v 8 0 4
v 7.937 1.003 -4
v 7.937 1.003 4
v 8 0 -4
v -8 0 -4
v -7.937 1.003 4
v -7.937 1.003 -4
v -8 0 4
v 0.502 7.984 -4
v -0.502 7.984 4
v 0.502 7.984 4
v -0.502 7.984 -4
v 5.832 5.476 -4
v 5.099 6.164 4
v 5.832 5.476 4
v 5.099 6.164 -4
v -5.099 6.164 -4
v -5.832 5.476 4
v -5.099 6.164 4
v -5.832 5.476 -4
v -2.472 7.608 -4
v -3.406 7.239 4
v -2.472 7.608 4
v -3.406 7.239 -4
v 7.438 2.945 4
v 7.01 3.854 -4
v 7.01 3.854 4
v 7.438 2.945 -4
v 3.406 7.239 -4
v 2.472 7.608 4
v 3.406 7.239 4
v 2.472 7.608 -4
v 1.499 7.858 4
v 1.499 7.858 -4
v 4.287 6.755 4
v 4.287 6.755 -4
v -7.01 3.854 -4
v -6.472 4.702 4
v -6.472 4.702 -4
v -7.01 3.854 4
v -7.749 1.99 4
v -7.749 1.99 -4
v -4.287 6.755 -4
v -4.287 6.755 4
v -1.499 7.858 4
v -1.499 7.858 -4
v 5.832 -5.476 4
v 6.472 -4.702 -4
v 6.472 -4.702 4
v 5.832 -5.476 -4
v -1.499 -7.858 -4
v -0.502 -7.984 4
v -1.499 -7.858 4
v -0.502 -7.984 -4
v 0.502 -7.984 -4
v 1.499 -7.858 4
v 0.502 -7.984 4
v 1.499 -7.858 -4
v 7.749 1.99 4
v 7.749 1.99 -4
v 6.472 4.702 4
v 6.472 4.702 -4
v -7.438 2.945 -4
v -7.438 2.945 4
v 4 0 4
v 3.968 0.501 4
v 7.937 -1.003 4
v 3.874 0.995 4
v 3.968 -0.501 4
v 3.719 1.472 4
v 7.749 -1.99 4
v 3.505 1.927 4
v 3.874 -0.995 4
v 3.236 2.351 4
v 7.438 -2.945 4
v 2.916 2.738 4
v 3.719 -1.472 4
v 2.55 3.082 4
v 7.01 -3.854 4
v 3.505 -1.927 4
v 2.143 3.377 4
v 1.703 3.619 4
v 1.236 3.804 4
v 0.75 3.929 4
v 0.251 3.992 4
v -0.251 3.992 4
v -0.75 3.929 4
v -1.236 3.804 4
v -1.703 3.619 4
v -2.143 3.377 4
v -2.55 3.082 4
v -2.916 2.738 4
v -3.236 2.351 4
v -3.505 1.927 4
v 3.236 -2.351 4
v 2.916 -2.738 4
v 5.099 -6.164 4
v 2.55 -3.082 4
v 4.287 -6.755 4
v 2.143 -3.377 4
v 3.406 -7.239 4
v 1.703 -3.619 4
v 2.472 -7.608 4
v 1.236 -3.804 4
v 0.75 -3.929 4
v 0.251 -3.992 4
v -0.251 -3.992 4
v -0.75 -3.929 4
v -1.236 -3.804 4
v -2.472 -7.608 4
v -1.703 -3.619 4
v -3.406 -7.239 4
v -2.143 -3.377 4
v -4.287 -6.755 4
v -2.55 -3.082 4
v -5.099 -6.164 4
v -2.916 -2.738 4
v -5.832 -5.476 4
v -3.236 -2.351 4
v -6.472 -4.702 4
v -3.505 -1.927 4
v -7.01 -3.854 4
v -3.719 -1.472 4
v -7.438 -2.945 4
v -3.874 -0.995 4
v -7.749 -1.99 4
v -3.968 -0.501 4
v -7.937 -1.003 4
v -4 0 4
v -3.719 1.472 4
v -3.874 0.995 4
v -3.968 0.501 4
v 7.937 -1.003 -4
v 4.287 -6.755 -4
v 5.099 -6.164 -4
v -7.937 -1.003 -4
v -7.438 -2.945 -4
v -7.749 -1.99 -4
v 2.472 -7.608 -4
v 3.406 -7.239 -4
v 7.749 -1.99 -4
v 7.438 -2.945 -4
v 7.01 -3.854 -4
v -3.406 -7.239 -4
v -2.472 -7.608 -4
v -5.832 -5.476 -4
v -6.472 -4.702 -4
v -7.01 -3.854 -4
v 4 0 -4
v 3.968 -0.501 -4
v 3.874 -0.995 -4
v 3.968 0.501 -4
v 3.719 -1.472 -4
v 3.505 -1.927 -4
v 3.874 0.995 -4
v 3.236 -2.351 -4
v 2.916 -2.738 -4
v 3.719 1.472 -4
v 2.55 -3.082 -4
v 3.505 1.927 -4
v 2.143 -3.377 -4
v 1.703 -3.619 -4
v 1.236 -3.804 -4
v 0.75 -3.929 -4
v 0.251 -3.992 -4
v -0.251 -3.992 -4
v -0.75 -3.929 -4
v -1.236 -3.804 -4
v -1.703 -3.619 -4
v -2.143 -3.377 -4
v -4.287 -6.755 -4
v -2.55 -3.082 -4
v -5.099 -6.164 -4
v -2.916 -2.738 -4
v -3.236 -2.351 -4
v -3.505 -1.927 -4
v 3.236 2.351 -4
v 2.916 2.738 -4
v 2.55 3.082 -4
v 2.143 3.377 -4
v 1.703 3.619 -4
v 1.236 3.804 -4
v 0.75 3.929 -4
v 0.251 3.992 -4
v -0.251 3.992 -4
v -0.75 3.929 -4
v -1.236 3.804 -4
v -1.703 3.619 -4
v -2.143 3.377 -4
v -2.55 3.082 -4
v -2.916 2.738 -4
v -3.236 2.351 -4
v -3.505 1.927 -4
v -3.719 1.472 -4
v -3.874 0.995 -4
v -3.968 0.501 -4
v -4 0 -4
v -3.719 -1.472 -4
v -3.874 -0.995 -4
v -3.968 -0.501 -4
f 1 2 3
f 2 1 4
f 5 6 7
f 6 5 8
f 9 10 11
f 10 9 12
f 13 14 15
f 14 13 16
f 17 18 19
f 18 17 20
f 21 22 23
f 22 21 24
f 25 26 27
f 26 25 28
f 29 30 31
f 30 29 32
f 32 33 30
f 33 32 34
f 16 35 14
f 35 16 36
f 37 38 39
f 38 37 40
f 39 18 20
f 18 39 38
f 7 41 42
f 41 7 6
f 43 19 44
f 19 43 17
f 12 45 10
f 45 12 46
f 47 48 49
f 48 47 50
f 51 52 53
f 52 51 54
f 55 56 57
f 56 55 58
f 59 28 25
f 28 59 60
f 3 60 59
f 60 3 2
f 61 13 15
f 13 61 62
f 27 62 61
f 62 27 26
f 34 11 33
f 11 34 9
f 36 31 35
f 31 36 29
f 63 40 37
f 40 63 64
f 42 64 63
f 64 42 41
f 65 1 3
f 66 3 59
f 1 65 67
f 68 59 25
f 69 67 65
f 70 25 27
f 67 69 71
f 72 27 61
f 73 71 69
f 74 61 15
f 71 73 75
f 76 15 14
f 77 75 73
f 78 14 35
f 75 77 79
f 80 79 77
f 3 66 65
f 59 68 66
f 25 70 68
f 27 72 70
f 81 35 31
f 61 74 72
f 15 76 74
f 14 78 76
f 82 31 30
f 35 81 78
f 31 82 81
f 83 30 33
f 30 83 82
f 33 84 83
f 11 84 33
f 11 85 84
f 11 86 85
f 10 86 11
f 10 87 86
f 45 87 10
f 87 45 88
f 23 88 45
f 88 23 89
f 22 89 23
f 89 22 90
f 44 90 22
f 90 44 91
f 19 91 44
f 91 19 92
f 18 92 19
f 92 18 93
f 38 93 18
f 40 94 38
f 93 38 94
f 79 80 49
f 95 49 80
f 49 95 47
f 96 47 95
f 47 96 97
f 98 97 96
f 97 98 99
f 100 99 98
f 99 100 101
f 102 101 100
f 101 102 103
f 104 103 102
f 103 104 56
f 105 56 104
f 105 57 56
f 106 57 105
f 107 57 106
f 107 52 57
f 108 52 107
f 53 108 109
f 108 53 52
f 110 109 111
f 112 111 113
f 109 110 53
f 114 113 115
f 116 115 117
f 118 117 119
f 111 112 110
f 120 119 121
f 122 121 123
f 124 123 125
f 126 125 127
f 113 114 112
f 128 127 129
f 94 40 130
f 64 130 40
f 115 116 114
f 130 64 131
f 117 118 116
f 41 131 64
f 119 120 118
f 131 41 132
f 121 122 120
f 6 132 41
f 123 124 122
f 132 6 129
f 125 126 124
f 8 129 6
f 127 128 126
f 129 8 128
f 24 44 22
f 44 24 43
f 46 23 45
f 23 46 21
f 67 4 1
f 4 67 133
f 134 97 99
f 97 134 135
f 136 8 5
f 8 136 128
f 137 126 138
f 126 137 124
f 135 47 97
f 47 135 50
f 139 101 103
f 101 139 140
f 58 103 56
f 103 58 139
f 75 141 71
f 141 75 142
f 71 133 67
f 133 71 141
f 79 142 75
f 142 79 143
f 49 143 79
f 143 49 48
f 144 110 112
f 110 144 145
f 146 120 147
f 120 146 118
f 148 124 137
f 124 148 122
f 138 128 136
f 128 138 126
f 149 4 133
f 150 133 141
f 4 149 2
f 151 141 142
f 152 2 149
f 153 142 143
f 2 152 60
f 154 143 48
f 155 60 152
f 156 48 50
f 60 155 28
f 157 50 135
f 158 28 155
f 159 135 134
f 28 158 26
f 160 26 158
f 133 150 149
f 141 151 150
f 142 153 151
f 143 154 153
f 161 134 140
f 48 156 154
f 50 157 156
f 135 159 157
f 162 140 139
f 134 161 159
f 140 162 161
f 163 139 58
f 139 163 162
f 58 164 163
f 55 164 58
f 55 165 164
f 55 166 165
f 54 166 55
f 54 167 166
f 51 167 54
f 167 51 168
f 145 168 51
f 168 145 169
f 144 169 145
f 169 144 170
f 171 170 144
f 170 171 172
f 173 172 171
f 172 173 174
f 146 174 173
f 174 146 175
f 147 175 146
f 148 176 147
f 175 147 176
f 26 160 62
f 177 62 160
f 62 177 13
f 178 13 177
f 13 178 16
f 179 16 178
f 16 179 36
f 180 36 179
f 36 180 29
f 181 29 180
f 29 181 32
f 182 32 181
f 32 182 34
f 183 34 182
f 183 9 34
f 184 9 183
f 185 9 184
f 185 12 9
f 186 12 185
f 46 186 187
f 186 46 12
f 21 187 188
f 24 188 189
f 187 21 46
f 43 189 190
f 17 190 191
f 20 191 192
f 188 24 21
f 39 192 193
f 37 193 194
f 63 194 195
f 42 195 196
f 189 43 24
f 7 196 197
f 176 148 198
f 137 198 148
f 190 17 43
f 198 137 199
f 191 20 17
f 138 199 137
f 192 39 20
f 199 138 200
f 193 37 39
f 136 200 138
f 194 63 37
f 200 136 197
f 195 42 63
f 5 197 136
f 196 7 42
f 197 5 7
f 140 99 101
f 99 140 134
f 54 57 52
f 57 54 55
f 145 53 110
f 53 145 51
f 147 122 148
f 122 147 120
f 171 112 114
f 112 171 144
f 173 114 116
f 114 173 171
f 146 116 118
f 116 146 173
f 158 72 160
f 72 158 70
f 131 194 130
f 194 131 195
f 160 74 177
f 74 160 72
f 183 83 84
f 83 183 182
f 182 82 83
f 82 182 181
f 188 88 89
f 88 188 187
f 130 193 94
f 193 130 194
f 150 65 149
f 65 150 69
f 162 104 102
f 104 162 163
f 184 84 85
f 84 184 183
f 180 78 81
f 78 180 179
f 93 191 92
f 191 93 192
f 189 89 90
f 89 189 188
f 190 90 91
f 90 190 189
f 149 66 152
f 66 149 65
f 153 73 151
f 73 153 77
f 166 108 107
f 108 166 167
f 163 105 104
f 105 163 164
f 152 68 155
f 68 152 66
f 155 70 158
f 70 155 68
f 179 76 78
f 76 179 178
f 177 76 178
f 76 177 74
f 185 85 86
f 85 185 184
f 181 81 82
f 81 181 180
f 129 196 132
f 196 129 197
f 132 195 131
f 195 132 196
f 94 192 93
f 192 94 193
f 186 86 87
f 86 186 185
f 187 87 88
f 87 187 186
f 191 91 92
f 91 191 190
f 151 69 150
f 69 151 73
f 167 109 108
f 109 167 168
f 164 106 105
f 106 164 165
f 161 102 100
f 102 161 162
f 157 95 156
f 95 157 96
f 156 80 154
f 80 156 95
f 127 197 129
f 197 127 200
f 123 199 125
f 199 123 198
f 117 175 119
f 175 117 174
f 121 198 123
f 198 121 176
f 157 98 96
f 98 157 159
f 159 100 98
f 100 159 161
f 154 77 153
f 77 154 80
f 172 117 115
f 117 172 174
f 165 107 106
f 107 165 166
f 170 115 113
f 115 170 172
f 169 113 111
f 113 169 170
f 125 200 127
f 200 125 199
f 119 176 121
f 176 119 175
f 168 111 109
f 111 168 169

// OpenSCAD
$fn = 50;


difference() {
	union() {
		translate(v = [0, 0, -4.0000000000]) {
			cylinder(h = 8, r = 8.0000000000);
		}
	}
	union() {
		translate(v = [0, 0, -100.0000000000]) {
			cylinder(h = 200, r = 4.0000000000);
		}
	}
}
